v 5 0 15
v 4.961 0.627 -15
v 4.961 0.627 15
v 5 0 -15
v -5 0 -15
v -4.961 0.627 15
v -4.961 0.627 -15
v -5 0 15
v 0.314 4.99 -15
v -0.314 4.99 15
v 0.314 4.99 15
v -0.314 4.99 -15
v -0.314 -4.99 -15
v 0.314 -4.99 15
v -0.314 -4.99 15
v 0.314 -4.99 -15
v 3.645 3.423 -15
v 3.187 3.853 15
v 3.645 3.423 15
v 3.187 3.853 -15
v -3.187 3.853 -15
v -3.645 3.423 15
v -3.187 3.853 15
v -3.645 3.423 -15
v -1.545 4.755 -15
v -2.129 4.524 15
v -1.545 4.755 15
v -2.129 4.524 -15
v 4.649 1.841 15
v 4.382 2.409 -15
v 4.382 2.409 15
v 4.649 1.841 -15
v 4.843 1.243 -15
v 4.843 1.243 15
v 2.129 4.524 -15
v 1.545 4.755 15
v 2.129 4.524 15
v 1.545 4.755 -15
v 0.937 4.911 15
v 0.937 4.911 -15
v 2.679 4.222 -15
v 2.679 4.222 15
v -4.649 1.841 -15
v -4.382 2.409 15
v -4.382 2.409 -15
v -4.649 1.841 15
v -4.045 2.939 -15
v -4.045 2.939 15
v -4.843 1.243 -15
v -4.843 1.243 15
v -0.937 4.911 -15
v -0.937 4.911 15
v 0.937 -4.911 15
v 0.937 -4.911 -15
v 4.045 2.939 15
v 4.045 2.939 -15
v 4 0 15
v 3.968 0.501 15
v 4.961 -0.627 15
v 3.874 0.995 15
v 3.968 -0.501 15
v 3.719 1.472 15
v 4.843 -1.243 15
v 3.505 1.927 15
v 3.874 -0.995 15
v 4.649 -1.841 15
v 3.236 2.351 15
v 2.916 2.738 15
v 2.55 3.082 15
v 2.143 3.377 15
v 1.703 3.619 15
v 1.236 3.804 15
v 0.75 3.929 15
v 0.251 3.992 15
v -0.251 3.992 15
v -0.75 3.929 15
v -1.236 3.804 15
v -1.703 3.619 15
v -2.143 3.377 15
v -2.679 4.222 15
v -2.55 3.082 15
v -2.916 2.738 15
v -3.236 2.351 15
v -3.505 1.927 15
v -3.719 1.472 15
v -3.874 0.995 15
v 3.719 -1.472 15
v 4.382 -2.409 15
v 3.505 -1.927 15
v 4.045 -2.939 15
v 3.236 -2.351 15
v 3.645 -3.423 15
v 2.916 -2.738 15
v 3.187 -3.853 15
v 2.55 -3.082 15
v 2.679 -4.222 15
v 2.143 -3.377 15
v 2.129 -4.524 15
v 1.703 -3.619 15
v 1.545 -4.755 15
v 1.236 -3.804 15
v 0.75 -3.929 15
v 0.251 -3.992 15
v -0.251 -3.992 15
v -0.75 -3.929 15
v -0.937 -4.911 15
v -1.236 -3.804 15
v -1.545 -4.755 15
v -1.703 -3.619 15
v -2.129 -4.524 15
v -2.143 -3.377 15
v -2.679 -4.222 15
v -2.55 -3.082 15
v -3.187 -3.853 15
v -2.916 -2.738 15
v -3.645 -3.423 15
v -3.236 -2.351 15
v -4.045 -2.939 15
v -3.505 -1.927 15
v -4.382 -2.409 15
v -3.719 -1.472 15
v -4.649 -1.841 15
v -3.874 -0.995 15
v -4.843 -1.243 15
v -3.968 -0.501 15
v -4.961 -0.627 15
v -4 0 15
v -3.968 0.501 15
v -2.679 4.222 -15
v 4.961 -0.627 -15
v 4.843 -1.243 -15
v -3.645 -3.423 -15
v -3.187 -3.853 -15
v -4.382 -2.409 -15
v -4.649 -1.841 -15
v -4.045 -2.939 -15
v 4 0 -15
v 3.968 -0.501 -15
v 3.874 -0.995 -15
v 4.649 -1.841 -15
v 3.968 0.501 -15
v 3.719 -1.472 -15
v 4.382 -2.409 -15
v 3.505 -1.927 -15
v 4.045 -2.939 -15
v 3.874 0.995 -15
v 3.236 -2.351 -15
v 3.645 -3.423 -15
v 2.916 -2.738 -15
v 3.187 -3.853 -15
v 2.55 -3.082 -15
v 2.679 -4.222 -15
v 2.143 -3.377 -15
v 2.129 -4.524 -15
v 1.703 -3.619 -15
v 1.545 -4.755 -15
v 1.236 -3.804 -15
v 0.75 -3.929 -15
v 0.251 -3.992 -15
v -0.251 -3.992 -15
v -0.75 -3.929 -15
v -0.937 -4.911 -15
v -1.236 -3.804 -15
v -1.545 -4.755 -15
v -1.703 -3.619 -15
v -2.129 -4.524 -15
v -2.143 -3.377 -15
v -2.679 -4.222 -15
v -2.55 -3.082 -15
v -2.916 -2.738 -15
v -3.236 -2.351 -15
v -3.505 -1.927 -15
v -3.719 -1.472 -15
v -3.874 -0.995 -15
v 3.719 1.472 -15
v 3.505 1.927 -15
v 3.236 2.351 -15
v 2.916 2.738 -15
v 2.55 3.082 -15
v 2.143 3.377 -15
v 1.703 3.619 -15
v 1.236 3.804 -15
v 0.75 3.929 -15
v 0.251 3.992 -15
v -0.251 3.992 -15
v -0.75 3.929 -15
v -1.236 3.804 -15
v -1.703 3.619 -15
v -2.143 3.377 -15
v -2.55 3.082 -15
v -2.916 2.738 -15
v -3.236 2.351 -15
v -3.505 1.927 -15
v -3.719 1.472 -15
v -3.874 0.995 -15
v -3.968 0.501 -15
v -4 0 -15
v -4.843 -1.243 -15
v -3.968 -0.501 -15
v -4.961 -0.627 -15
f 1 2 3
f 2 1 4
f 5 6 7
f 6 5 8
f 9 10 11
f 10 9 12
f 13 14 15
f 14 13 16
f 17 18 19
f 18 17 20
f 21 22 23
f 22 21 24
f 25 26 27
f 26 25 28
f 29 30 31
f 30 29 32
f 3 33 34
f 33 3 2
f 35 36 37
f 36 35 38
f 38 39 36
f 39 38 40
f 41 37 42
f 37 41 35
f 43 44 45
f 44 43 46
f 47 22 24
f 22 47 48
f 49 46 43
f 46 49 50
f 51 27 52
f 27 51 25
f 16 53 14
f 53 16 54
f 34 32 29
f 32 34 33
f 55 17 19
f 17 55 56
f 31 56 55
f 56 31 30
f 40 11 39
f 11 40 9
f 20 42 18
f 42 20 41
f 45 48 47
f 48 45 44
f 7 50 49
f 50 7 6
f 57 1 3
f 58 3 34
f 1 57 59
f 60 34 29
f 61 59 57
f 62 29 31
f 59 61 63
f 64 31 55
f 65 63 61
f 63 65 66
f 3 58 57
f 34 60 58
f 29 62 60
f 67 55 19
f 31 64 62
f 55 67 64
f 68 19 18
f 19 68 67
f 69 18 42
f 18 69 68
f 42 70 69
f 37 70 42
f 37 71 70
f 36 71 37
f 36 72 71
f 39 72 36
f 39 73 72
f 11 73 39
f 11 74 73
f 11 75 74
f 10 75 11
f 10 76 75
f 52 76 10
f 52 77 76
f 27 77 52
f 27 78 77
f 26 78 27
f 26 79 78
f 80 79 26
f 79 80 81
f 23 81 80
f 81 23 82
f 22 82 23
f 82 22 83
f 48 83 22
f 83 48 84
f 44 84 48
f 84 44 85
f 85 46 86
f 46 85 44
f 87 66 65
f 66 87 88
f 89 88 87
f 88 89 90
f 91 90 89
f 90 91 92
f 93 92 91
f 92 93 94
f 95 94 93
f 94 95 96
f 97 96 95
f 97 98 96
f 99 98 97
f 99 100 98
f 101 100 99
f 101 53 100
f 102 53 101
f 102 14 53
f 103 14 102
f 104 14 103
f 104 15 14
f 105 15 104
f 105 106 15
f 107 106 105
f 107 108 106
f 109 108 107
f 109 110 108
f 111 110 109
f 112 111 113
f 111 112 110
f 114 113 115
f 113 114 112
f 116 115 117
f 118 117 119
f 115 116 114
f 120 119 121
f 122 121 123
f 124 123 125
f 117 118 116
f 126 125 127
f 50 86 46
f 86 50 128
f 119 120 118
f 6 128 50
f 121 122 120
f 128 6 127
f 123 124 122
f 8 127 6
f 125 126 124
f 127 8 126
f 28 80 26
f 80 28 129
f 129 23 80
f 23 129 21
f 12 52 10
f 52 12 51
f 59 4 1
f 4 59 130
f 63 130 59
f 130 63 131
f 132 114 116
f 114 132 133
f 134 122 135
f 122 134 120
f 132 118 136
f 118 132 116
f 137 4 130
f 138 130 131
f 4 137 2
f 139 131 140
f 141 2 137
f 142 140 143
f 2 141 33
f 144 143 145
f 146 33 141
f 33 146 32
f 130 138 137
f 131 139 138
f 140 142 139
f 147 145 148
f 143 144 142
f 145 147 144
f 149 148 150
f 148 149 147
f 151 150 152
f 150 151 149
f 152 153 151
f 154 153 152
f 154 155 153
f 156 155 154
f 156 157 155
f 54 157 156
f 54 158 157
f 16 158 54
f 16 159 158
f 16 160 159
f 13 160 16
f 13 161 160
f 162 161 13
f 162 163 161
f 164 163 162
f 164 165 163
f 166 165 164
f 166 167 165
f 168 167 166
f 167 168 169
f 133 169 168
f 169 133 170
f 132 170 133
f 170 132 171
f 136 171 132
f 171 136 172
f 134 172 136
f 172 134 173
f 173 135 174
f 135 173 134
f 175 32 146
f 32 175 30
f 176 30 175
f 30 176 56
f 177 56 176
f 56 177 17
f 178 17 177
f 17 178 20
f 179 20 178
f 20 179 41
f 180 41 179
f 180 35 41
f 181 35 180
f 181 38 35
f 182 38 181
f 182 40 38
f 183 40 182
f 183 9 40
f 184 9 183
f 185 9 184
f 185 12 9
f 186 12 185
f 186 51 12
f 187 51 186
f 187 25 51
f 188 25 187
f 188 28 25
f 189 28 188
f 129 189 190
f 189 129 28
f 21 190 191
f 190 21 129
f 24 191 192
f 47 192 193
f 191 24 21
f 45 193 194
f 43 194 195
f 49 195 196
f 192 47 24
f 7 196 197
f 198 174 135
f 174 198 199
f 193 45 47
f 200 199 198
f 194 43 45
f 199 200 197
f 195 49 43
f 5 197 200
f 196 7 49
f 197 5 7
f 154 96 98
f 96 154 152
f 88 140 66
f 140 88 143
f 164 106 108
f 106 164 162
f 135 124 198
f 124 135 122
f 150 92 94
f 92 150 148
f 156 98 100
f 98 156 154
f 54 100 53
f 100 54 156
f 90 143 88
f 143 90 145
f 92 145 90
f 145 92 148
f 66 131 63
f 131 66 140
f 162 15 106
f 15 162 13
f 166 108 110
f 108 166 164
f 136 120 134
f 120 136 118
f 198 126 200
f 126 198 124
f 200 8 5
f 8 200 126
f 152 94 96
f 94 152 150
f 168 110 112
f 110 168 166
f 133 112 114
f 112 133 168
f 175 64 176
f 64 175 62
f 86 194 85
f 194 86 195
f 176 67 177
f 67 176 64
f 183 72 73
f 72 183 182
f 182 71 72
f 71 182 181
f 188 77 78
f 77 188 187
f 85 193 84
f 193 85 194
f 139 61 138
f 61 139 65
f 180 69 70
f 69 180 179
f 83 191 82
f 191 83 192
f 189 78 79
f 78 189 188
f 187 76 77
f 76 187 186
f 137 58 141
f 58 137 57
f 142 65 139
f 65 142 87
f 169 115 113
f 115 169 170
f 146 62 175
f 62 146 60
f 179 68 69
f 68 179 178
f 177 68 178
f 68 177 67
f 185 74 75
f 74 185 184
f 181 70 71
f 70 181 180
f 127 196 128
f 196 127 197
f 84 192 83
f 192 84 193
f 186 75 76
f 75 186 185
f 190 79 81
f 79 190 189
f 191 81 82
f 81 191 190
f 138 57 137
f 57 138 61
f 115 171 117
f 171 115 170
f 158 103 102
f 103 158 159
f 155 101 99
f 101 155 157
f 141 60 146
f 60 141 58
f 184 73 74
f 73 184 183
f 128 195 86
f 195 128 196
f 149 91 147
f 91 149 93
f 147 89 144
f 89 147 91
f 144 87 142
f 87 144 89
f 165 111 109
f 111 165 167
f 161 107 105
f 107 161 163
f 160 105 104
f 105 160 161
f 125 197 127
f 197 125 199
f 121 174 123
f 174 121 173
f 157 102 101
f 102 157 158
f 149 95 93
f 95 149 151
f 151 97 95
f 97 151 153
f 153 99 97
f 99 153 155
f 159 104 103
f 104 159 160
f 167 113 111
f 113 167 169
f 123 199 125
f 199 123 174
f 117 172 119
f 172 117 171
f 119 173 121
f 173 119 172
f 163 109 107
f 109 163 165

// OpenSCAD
$fn = 50;


difference() {
	union() {
		translate(v = [0, 0, -15.0000000000]) {
			cylinder(h = 30, r = 5.0000000000);
		}
	}
	union() {
		translate(v = [0, 0, -100.0000000000]) {
			cylinder(h = 200, r = 4);
		}
	}
}
